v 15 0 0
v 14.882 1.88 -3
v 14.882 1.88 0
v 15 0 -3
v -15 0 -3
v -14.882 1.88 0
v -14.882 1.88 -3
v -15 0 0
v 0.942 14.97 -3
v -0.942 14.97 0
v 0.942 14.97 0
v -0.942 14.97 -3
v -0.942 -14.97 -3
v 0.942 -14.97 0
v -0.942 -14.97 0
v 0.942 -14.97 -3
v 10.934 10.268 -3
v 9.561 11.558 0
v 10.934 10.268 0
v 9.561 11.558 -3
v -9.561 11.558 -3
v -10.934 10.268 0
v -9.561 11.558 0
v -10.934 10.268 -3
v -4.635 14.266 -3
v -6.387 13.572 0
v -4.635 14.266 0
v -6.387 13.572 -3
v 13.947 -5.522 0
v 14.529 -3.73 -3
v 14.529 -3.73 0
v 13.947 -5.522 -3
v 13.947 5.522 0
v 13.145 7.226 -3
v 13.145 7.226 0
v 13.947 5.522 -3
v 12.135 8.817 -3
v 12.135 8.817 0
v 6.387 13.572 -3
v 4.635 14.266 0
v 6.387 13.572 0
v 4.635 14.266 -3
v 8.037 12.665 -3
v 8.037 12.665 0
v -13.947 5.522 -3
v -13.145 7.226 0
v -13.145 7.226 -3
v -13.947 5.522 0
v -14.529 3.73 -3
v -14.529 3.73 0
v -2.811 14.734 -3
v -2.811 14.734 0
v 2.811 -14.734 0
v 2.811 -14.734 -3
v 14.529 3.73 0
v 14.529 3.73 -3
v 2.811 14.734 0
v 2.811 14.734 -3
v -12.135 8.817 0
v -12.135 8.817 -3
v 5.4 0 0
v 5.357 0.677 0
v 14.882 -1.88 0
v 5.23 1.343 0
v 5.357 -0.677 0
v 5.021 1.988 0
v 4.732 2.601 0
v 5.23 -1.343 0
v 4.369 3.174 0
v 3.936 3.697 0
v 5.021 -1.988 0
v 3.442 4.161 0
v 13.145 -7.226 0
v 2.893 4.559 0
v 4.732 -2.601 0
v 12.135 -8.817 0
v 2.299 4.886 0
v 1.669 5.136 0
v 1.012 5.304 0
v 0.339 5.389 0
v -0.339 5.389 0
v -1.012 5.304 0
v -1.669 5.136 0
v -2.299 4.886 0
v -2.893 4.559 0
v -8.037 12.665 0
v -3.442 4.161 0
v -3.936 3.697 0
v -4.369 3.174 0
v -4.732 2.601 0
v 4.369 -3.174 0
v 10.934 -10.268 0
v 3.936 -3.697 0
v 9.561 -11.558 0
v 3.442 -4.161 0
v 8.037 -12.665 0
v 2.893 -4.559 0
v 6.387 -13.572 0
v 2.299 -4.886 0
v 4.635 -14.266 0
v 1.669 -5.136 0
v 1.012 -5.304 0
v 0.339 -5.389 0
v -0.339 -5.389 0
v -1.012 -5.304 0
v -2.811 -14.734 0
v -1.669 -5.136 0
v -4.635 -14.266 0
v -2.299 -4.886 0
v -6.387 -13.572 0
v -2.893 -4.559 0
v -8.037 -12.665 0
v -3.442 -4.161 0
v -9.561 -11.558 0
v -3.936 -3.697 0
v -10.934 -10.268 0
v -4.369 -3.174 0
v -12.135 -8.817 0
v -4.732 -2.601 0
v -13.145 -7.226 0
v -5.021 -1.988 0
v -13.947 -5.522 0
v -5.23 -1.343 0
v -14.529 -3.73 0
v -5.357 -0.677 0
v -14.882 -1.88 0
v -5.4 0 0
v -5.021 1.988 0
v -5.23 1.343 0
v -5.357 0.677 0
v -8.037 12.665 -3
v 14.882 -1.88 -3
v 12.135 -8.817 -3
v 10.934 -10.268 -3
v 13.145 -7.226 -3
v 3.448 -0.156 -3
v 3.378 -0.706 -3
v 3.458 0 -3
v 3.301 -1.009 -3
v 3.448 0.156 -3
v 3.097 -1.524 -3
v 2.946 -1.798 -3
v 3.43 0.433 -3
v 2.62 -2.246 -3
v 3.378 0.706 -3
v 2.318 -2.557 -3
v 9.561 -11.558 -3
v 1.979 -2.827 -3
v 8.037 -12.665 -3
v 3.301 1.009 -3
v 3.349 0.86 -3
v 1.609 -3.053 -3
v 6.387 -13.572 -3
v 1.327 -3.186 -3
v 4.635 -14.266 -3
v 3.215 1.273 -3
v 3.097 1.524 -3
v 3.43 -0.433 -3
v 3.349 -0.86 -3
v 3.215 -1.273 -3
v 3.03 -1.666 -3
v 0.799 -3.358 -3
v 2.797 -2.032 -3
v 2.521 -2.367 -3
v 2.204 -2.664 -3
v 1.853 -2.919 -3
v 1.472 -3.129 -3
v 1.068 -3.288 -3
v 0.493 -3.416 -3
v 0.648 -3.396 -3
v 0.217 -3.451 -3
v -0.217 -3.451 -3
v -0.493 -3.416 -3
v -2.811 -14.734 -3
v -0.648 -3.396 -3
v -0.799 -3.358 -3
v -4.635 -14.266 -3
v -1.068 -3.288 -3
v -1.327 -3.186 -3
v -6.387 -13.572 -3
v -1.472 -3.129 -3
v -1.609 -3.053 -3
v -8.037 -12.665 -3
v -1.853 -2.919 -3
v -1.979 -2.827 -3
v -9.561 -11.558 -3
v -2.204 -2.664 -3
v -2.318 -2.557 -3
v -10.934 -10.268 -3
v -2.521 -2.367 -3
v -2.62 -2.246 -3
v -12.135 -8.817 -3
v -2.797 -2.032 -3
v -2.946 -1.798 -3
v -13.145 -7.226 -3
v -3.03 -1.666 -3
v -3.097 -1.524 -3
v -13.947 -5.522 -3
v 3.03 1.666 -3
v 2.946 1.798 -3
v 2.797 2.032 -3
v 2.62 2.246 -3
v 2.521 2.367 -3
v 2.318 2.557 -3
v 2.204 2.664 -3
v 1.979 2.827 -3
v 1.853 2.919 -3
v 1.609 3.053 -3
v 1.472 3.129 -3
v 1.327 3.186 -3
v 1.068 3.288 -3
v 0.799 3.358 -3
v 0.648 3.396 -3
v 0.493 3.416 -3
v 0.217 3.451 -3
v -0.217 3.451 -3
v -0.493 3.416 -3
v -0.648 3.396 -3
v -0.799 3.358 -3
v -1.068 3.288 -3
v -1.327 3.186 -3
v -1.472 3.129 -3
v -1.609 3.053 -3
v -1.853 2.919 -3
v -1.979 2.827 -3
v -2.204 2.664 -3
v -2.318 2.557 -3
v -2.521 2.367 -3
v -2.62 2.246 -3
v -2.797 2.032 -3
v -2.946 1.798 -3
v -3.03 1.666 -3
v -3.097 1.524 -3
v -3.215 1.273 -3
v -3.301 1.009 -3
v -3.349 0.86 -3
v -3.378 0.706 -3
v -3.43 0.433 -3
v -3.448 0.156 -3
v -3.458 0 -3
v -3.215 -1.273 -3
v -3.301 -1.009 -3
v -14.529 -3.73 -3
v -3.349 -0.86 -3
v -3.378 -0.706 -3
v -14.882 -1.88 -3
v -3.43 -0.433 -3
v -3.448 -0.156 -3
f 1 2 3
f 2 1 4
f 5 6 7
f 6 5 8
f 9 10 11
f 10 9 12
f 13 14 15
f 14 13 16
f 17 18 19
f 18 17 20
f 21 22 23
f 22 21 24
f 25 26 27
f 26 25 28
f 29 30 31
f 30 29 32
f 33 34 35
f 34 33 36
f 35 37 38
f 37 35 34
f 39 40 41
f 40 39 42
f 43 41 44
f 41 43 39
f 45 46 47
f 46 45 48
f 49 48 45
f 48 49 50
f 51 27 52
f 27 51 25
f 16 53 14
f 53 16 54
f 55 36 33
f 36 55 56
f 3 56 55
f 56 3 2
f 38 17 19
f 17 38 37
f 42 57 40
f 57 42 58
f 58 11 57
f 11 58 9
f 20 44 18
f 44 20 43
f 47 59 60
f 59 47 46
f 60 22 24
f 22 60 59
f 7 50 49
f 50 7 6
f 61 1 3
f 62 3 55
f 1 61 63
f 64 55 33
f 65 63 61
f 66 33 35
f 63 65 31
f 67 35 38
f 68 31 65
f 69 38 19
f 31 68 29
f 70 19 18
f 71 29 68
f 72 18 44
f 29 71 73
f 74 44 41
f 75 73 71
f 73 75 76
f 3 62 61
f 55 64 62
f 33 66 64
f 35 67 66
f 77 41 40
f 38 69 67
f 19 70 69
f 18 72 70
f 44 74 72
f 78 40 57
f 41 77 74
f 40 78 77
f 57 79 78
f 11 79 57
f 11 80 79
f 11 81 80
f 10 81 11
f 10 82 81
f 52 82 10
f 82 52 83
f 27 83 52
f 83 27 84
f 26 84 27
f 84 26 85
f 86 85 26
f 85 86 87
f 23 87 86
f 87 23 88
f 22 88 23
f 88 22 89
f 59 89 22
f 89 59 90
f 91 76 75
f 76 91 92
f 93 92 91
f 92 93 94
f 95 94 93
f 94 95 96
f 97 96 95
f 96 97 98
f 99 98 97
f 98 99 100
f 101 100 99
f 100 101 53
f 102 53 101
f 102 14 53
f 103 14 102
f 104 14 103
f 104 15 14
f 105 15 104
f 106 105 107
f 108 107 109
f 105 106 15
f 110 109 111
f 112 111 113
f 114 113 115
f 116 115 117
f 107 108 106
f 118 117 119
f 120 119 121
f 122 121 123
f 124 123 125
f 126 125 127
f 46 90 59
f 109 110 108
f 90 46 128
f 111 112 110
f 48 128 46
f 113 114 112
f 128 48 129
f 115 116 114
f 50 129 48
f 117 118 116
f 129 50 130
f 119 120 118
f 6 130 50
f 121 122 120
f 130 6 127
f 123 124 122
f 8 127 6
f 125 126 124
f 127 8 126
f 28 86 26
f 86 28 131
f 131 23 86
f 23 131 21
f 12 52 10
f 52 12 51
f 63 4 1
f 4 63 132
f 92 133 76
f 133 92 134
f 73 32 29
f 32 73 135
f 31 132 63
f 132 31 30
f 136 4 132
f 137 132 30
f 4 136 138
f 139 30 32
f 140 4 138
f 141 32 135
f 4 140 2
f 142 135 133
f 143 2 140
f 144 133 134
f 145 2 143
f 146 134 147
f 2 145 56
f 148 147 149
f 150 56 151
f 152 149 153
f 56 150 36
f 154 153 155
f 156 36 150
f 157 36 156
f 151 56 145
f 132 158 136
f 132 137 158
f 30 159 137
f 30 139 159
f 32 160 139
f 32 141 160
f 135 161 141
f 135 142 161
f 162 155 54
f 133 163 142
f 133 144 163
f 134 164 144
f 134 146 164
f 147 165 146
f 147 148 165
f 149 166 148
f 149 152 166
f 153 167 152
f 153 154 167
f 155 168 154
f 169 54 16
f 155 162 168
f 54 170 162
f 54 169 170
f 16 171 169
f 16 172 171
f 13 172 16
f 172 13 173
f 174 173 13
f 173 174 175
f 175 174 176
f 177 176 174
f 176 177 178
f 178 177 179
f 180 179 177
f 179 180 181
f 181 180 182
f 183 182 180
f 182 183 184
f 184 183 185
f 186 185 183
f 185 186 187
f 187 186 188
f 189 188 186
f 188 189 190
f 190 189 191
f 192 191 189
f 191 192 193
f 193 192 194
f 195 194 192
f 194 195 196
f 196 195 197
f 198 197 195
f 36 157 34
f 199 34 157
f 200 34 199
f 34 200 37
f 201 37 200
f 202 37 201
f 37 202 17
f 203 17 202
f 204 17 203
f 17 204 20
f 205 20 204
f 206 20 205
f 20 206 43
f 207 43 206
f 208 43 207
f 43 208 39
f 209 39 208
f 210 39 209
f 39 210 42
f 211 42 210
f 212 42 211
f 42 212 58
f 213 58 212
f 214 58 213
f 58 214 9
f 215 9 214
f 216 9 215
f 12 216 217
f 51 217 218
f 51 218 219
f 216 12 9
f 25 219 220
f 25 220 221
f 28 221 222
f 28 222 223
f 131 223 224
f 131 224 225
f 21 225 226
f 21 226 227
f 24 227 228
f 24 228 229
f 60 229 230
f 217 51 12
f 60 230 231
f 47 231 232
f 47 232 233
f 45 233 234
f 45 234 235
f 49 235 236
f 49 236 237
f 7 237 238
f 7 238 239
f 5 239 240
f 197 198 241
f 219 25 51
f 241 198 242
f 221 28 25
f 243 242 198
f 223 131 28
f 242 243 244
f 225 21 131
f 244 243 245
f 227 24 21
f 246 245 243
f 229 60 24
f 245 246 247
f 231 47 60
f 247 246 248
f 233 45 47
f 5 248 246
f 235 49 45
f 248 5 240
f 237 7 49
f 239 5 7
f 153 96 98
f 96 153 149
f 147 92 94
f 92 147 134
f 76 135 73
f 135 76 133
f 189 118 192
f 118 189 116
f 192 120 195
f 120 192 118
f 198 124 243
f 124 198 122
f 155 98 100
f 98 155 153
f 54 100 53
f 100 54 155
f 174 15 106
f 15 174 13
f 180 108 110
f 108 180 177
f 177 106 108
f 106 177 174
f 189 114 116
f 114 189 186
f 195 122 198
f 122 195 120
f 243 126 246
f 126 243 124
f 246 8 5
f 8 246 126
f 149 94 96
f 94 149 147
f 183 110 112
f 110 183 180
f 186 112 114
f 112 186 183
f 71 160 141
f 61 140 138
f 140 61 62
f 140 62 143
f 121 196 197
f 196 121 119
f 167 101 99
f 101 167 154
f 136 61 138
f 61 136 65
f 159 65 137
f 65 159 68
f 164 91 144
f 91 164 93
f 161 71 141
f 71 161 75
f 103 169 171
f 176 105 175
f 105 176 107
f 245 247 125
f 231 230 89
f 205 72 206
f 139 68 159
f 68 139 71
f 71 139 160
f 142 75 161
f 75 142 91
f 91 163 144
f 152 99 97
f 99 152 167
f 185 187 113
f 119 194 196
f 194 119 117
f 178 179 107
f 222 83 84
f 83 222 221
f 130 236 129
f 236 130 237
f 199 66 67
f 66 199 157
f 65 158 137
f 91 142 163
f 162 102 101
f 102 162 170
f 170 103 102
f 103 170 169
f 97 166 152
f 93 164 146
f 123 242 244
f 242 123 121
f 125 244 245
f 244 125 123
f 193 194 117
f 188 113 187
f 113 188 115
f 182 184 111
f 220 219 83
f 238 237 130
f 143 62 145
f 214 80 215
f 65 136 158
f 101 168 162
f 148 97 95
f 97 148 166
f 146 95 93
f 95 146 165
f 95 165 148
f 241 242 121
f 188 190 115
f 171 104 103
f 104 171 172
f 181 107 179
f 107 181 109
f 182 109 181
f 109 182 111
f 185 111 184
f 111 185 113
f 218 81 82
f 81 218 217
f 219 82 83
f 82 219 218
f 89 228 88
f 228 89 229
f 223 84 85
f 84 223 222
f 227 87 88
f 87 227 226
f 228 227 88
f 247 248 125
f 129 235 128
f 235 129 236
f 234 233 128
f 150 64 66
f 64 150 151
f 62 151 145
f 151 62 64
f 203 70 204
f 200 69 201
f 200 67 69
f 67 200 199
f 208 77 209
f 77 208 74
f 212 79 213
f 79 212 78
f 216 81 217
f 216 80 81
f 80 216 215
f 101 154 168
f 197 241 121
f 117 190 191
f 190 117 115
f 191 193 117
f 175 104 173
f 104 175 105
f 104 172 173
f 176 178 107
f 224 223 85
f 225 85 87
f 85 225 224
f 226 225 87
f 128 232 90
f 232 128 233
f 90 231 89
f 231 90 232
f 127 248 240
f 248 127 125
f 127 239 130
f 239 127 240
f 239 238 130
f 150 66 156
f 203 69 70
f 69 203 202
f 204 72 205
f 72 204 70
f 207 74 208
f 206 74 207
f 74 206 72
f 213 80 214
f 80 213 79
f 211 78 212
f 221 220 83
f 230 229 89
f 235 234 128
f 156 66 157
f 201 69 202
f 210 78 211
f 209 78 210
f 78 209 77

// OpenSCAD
$fn = 50;


difference() {
	union() {
		translate(v = [0, 0, -3.0000000000]) {
			cylinder(h = 3, r = 15.0000000000);
		}
		translate(v = [0, 0, -6.0000000000]) {
			cylinder(h = 6, r = 2.8750000000);
		}
	}
	union() {
		translate(v = [0, 0, 0]) {
			rotate(a = [0, 0, 0]) {
				difference() {
					union() {
						translate(v = [0, 0, -6.0000000000]) {
							cylinder(h = 6, r = 2.6000000000);
						}
						translate(v = [0, 0, -3.9000000000]) {
							cylinder(h = 3.9000000000, r1 = 2.8750000000, r2 = 5.4000000000);
						}
						translate(v = [0, 0, -6.0000000000]) {
							cylinder(h = 6, r = 2.8750000000);
						}
						translate(v = [0, 0, -6.0000000000]) {
							cylinder(h = 6, r = 2.6000000000);
						}
					}
					union();
				}
			}
		}
	}
}
